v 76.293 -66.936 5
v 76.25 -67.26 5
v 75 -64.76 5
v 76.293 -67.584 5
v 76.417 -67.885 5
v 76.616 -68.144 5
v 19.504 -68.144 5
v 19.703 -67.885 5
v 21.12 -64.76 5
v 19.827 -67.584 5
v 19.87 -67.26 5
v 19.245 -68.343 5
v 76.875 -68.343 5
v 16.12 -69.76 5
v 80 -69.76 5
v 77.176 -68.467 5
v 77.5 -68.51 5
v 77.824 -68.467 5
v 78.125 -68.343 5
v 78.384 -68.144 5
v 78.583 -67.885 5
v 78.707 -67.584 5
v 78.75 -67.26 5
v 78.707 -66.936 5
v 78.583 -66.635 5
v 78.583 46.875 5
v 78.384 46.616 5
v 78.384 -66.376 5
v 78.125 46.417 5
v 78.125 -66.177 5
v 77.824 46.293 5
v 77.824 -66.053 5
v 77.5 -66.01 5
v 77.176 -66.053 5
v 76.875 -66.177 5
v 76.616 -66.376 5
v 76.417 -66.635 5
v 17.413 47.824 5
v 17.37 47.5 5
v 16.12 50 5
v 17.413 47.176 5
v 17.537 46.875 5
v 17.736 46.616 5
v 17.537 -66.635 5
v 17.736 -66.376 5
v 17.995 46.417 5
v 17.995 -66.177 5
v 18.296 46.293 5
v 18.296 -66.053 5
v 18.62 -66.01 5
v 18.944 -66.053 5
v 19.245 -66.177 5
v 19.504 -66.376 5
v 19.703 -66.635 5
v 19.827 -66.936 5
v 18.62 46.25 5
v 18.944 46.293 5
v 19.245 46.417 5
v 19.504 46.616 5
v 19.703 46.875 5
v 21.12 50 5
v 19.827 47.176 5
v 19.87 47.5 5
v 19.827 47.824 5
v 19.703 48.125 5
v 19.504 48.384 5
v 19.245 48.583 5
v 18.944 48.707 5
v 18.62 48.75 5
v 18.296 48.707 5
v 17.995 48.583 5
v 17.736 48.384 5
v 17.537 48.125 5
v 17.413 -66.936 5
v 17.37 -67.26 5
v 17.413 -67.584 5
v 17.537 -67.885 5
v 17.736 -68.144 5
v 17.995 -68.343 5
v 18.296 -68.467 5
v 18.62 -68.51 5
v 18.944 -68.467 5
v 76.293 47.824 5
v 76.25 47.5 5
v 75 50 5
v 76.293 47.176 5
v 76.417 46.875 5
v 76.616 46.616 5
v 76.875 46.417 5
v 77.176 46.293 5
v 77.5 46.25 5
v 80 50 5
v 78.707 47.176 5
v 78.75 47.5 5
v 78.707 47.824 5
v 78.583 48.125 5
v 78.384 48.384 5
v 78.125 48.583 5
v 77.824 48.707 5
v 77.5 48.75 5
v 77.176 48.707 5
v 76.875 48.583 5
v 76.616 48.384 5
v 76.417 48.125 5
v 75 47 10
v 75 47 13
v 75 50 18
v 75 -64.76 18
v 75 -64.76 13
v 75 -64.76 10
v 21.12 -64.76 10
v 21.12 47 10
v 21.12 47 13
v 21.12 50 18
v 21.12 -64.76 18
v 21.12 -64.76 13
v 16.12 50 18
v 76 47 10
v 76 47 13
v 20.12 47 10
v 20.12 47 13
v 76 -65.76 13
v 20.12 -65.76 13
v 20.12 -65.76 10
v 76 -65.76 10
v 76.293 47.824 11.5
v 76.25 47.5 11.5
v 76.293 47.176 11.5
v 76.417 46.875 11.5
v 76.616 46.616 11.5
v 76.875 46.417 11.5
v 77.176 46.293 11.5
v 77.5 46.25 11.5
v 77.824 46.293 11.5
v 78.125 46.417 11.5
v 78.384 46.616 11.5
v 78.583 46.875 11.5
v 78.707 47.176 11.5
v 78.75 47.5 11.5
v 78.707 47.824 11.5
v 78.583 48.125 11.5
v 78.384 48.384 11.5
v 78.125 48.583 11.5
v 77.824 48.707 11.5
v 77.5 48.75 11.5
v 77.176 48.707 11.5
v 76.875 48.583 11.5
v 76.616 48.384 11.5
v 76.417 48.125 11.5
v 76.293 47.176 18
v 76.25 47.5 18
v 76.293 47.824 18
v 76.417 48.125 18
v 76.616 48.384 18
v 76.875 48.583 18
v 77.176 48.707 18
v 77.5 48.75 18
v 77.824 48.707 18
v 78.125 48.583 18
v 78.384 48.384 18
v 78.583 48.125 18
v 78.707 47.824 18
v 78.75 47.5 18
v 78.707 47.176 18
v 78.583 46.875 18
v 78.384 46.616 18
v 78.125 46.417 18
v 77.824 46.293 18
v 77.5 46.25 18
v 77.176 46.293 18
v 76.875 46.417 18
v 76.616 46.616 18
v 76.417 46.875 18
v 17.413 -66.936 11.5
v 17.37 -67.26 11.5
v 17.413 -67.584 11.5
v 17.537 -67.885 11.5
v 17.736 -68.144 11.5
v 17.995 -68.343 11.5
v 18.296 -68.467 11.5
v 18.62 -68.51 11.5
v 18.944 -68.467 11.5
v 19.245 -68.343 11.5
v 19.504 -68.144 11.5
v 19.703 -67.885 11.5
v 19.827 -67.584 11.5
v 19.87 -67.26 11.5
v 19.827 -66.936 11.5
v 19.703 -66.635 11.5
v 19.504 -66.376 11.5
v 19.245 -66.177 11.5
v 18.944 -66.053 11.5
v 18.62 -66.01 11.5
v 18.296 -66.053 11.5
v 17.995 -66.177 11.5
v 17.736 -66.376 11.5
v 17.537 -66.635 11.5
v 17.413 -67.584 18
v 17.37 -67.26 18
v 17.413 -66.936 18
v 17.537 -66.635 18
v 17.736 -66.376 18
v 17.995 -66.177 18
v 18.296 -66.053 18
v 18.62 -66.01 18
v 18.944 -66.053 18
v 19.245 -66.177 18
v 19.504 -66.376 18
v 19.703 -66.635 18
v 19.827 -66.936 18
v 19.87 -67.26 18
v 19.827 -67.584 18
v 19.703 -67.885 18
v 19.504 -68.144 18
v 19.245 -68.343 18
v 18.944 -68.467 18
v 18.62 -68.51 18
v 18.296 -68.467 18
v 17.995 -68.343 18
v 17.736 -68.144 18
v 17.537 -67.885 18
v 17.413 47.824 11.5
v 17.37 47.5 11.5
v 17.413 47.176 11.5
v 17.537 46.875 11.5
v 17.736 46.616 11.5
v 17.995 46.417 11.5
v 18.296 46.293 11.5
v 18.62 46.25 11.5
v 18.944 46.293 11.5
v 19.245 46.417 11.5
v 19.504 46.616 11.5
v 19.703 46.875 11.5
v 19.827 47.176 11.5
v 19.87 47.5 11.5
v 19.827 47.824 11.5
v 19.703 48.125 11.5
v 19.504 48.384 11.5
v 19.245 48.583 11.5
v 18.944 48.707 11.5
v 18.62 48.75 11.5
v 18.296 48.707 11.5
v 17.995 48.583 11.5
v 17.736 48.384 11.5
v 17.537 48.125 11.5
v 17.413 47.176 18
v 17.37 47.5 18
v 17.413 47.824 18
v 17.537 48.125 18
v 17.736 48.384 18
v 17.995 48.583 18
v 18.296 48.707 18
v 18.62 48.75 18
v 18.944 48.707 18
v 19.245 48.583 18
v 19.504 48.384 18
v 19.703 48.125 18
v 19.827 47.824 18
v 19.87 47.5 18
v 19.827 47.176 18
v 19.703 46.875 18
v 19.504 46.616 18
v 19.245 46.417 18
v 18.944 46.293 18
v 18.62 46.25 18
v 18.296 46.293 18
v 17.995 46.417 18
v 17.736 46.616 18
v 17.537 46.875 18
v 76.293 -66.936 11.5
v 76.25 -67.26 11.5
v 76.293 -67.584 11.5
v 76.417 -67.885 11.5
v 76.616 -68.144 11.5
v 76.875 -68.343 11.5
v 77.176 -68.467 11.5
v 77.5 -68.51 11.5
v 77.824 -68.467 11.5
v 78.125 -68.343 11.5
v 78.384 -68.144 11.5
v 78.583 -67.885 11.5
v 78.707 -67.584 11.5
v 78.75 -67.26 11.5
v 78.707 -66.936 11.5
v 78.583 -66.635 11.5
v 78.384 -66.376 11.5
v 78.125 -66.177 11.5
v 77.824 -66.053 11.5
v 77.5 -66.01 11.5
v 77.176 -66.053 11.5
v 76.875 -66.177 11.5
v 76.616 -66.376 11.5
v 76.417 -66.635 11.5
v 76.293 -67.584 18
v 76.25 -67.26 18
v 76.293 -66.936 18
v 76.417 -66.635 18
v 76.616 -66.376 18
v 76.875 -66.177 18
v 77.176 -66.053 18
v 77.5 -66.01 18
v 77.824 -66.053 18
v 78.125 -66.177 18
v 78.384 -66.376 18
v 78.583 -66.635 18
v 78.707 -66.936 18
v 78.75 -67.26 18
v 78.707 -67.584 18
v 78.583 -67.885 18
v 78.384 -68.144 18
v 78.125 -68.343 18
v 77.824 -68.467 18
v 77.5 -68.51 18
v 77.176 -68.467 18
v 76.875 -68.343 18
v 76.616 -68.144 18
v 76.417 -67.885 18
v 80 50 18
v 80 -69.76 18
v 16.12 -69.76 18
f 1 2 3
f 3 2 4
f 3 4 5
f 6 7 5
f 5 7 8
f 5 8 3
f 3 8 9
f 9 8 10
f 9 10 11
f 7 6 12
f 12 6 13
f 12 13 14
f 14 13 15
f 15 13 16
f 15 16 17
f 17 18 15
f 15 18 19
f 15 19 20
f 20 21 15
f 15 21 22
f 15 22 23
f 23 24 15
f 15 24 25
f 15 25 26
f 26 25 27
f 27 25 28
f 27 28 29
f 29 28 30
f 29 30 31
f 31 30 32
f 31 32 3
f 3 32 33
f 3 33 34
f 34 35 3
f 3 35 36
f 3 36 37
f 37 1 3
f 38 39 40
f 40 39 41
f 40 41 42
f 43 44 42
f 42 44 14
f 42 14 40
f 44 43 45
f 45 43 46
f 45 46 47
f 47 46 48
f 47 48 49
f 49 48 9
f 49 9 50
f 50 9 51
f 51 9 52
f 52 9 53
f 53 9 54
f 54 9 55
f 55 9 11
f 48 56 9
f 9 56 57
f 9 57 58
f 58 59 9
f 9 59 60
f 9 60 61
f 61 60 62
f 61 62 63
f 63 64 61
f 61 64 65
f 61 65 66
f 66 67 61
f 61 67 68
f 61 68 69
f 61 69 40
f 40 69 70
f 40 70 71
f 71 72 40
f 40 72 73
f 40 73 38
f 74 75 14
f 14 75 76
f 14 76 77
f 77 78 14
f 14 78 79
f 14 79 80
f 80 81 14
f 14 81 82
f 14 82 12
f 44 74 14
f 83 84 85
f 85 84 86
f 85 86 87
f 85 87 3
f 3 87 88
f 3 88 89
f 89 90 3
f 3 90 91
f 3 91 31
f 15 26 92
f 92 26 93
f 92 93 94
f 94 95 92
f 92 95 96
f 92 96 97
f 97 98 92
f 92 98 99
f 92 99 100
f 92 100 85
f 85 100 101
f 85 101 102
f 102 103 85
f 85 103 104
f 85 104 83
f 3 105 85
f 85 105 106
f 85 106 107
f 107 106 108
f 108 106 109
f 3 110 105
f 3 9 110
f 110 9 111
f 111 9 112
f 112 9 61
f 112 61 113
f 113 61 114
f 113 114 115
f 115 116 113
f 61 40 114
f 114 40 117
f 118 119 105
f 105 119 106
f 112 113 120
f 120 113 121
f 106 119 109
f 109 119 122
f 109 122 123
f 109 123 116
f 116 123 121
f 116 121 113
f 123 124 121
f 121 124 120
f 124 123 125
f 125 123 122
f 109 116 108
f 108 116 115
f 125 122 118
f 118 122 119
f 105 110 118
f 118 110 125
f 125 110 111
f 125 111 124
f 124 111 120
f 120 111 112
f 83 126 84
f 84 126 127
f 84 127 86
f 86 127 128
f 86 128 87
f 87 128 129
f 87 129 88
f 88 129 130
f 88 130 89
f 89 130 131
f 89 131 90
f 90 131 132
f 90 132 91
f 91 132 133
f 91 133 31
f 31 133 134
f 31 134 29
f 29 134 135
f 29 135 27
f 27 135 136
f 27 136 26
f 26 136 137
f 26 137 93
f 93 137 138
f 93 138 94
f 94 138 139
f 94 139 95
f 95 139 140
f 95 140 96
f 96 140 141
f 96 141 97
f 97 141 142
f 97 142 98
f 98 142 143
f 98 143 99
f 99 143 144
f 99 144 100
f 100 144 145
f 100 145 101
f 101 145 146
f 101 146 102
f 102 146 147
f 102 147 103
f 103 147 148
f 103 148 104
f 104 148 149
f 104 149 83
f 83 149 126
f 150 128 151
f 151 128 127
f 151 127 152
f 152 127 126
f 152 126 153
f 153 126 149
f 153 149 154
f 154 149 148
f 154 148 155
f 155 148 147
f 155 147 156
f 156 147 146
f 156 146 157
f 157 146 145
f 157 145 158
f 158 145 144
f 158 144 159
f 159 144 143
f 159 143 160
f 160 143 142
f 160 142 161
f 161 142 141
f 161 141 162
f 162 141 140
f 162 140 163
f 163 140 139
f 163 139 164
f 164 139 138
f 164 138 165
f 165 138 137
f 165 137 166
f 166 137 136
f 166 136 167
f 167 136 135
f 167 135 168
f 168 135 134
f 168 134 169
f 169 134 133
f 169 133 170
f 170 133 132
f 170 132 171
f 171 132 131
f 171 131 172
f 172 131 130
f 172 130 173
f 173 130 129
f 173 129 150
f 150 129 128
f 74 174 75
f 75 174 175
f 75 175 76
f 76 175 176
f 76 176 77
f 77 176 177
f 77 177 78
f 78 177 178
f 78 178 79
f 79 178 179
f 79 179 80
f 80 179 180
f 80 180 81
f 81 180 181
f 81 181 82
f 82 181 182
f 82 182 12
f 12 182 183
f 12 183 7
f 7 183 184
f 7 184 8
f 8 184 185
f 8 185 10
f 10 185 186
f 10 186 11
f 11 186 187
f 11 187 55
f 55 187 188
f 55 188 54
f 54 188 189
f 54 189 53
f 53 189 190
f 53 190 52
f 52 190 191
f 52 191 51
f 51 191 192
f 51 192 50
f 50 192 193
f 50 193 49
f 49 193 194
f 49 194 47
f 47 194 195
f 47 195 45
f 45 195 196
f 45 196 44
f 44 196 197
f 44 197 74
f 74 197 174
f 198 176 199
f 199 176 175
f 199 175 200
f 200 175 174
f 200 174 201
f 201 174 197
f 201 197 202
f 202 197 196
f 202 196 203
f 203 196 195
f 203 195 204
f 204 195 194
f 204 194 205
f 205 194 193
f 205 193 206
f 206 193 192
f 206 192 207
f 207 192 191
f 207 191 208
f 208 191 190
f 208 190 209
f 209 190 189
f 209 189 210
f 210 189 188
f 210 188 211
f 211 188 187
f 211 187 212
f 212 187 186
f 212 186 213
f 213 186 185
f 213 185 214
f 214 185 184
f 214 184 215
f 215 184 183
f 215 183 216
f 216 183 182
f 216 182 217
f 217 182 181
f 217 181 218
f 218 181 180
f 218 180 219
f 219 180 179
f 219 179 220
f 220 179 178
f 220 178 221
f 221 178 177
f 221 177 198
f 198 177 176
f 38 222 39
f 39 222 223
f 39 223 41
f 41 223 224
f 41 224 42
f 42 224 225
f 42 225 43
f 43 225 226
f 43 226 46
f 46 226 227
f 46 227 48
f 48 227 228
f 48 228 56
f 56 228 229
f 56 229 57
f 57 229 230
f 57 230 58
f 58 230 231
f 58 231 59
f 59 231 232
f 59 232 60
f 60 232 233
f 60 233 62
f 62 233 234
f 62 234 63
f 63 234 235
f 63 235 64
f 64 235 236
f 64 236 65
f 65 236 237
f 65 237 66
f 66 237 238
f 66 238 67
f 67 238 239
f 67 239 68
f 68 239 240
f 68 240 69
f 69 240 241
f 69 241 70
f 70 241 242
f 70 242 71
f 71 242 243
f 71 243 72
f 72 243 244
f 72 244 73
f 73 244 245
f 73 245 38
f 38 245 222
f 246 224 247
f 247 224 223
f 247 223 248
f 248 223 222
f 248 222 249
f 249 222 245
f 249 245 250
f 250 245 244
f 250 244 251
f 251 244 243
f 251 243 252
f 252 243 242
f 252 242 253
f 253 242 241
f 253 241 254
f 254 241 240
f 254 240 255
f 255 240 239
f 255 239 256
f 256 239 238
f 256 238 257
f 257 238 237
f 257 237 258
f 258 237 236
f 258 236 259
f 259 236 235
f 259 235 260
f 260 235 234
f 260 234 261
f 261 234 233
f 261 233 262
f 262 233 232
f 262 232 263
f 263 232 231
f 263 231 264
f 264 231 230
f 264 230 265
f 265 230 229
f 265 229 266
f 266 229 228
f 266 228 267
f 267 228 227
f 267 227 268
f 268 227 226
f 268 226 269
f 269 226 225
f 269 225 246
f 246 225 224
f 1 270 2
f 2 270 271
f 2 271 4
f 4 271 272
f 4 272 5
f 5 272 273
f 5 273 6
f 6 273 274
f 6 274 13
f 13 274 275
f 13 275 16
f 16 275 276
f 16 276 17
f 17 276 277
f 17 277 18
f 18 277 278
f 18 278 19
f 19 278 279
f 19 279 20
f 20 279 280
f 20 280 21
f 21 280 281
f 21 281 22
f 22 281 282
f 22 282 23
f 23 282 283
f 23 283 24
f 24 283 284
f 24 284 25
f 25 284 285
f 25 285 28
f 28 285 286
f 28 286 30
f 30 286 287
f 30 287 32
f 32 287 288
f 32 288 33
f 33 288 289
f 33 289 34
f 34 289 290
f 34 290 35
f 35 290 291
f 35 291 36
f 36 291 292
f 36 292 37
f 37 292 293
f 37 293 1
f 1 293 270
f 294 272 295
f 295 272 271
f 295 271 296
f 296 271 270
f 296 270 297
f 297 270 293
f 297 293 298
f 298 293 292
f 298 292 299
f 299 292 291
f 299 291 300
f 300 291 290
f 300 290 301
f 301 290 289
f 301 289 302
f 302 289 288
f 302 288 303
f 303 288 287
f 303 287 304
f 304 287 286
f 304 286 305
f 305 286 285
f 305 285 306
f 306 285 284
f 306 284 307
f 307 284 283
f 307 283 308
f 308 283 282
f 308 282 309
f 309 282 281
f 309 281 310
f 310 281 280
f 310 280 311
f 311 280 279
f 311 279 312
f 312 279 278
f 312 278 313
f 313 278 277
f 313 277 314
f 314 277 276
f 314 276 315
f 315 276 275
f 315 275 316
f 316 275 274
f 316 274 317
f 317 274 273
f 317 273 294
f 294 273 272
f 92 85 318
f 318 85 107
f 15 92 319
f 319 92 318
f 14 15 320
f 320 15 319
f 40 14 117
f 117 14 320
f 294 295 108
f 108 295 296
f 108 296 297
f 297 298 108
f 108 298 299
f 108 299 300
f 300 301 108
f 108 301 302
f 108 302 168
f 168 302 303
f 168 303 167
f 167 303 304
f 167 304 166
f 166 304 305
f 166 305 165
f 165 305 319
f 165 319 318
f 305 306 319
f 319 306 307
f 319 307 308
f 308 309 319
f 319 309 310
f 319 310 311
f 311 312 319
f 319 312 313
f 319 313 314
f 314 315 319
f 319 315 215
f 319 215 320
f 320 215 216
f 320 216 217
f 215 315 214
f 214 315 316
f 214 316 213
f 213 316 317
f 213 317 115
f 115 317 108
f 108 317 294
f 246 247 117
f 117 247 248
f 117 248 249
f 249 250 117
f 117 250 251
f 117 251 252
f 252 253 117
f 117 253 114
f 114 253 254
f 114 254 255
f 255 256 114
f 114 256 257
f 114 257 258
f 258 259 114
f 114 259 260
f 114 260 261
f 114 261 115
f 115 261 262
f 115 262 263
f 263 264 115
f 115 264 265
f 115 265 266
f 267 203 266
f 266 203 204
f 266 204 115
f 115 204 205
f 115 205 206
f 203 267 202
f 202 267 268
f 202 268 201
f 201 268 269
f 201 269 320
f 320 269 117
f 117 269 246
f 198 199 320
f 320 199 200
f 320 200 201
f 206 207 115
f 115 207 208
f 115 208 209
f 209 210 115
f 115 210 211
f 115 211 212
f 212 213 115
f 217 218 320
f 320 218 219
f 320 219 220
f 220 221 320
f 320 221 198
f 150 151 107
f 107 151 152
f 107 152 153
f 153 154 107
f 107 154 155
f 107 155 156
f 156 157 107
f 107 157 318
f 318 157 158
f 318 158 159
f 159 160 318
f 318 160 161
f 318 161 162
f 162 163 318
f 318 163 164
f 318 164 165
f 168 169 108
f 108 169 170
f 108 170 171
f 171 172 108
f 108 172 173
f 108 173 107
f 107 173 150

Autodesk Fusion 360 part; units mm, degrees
sketch "Sketch1" plane through (0, 0, 0) normal (0, 0, 1) x (1, 0, 0)
  line L0 (16.12, 50) -> (16.12, -69.76)
  line L1 (16.12, -69.76) -> (80, -69.76)
  line L2 (80, -69.76) -> (80, 50)
  line L3 (80, 50) -> (75, 50)
  line L4 (75, 50) -> (75, -64.76)
  line L5 (75, -64.76) -> (21.12, -64.76)
  line L6 (21.12, -64.76) -> (21.12, 50)
  line L7 (21.12, 50) -> (16.12, 50)
  circle A0 centre (18.62, 47.5) radius 1.25
  circle A1 centre (77.5, 47.5) radius 1.25
  circle A2 centre (18.62, -67.26) radius 1.25
  circle A3 centre (77.5, -67.26) radius 1.25
  dimension "d9" = 5
  dimension "d10" = 5
  dimension "d11" = 5
  dimension "d12" = 119.76
  dimension "d13" = 63.88
  dimension "d16" = 2.5
  dimension "d17" = 2.5
  dimension "d18" = 2.5
  dimension "d19" = 2.5
  dimension "d20" = 2.5
  dimension "d21" = 2.5
  dimension "d22" = 2.5
  dimension "d23" = 2.5
  dimension "d24" = 2.5
  dimension "d25" = 2.5
  dimension "d26" = 2.5
  dimension "d27" = 2.5
  dimension "d39" = 114.76
extrude "Extrude2" add sketch "Sketch1" along normal blind 18
sketch "Sketch3" plane through (0, 50, 0) normal (0, 1, 0) x (-1, 0, 0)
  line L0 (-80, 0) -> (-75, 0)
  line L1 (-75, 0) -> (-75, 18)
  line L2 (-75, 18) -> (-80, 18)
  line L3 (-80, 18) -> (-80, 0)
  line L4 (-75, 10) -> (-76, 10)
  line L5 (-76, 10) -> (-76, 13)
  line L6 (-76, 13) -> (-75, 13)
  line L7 (-75, 13) -> (-75, 10)
  dimension "d34" = 3
  dimension "d35" = 1
  dimension "d36" = 5
extrude "Extrude3" cut sketch "Sketch3" against normal blind 115.76 contours L1 L4 L5 L6 L7
sketch "Sketch4" plane through (0, -64.76, 0) normal (0, 1, 0) x (-1, 0, 0)
  line L0 (-75, 0) -> (-21.12, 0)
  line L1 (-21.12, 0) -> (-21.12, 18)
  line L2 (-21.12, 18) -> (-75, 18)
  line L3 (-75, 18) -> (-75, 13)
  line L4 (-75, 13) -> (-75, 10)
  line L5 (-75, 10) -> (-75, 0)
  line L6 (-75, 13) -> (-21.12, 13)
  line L7 (-21.12, 13) -> (-21.12, 9)
  line L8 (-21.12, 9) -> (-75, 9)
  line L9 (-75, 9) -> (-75, 13)
extrude "Extrude4" cut sketch "Sketch4" against normal blind 1 contours L1 L4 L5 L6 L7 L8 L9
sketch "Sketch5" plane through (0, 50, 0) normal (0, 1, 0) x (-1, 0, 0)
  line L0 (-21.12, 0) -> (-16.12, 0)
  line L1 (-16.12, 0) -> (-16.12, 18)
  line L2 (-16.12, 18) -> (-21.12, 18)
  line L3 (-21.12, 18) -> (-21.12, 0)
  line L4 (-21.12, 13) -> (-20.12, 13)
  line L5 (-20.12, 13) -> (-20.12, 10)
  line L6 (-20.12, 10) -> (-21.12, 10)
  line L7 (-21.12, 10) -> (-21.12, 13)
  dimension "d42" = 3
  dimension "d43" = 5
  dimension "d44" = 1
extrude "Extrude5" cut sketch "Sketch5" against normal blind 115.76 contours L3 L4 L5 L6 L7
sketch "Sketch6" plane through (0, 0, 10) normal (0, 0, 1) x (-1, 0, 0)
  line L0 (-21.12, 65.76) -> (-21.12, -50)
  line L1 (-21.12, -50) -> (-20.12, -50)
  line L2 (-20.12, -50) -> (-20.12, 65.76)
  line L3 (-20.12, 65.76) -> (-21.12, 65.76)
  line L4 (-20.12, -50) -> (-21.12, -50)
  line L5 (-21.12, -50) -> (-21.12, -46)
  line L6 (-21.12, -46) -> (-20.12, -46)
  line L7 (-20.12, -46) -> (-20.12, -50)
  dimension "d47" = 4
extrude "Extrude6" add sketch "Sketch6" along normal blind 2 contours L0 L1 L2 L4 L5 L6 L7
sketch "Sketch7" plane through (0, 0, 10) normal (0, 0, 1) x (-1, 0, 0)
  line L0 (-20.12, 65.76) -> (-21.12, 65.76)
  line L1 (-75, -50) -> (-76, -50)
  line L2 (-76, -50) -> (-76, -46)
  line L3 (-76, -46) -> (-75, -46)
  line L4 (-75, -46) -> (-75, -50)
  line L5 (-21.12, -46) -> (-20.12, -46)
  line L6 (-20.12, -46) -> (-20.12, 65.76)
  line L7 (-21.12, 65.76) -> (-21.12, -46)
extrude "Extrude9" add 1 faces at (39.08, -65.0933, 9) along direction (0, 0, 1) blind 1
extrude "Extrude10" add 1 faces at (20.7867, 47.3333, 12) along direction (0, 0, 1) blind 1
extrude "Extrude11" add sketch "Sketch7" along normal blind 3 contours L1 L2 L3 L4
extrude "Extrude12" cut 1 faces at (20.4533, 46, 12) along direction (0, 1, 0) blind 1
extrude "Extrude13" cut 1 faces at (75.6667, 46, 11) along direction (0, 1, 0) blind 1
extrude "Extrude14" cut 1 faces at (77.057, -28.1733, 0) along direction (0, 0, 1) blind 5
extrude "Extrude7" [suppressed]
extrude "Extrude8" [suppressed]
